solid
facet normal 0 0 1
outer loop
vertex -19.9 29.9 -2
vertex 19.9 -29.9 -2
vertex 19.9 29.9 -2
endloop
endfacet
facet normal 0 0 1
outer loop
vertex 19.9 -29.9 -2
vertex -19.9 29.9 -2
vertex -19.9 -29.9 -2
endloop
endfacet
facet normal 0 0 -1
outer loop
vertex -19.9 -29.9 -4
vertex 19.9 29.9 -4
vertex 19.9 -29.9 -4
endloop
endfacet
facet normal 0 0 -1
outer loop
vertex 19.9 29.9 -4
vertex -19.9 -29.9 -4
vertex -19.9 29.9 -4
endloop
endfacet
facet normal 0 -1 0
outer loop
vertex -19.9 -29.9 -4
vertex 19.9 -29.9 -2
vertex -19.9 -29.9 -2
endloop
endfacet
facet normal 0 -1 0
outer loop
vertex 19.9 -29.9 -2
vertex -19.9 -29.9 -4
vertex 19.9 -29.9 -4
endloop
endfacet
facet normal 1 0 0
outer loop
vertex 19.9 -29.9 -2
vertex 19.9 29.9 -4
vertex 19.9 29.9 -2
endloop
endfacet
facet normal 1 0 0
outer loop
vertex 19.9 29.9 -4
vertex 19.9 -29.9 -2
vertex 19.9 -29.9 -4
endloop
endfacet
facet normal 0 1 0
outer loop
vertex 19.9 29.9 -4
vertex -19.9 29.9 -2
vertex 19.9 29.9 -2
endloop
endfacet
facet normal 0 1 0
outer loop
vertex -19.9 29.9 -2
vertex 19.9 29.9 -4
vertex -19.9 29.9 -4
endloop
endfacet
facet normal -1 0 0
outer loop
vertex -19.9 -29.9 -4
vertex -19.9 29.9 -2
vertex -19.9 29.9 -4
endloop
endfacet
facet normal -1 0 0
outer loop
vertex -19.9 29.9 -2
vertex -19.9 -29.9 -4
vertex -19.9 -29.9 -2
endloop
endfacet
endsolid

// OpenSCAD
/*

  ttt_base_1_5.scad

  (c) olikraus@gmail.com

  This work is licensed under the Creative Commons Attribution-NonCommercial-ShareAlike 4.0 International License. 
  To view a copy of this license, visit http://creativecommons.org/licenses/by-nc-sa/4.0/.

  straight one grid tile train tube track
  
*/
include <train_tube_track.scad>;

//straight_track_double_plug(grid, is_base = false);

base_grid(1.5*grid);
